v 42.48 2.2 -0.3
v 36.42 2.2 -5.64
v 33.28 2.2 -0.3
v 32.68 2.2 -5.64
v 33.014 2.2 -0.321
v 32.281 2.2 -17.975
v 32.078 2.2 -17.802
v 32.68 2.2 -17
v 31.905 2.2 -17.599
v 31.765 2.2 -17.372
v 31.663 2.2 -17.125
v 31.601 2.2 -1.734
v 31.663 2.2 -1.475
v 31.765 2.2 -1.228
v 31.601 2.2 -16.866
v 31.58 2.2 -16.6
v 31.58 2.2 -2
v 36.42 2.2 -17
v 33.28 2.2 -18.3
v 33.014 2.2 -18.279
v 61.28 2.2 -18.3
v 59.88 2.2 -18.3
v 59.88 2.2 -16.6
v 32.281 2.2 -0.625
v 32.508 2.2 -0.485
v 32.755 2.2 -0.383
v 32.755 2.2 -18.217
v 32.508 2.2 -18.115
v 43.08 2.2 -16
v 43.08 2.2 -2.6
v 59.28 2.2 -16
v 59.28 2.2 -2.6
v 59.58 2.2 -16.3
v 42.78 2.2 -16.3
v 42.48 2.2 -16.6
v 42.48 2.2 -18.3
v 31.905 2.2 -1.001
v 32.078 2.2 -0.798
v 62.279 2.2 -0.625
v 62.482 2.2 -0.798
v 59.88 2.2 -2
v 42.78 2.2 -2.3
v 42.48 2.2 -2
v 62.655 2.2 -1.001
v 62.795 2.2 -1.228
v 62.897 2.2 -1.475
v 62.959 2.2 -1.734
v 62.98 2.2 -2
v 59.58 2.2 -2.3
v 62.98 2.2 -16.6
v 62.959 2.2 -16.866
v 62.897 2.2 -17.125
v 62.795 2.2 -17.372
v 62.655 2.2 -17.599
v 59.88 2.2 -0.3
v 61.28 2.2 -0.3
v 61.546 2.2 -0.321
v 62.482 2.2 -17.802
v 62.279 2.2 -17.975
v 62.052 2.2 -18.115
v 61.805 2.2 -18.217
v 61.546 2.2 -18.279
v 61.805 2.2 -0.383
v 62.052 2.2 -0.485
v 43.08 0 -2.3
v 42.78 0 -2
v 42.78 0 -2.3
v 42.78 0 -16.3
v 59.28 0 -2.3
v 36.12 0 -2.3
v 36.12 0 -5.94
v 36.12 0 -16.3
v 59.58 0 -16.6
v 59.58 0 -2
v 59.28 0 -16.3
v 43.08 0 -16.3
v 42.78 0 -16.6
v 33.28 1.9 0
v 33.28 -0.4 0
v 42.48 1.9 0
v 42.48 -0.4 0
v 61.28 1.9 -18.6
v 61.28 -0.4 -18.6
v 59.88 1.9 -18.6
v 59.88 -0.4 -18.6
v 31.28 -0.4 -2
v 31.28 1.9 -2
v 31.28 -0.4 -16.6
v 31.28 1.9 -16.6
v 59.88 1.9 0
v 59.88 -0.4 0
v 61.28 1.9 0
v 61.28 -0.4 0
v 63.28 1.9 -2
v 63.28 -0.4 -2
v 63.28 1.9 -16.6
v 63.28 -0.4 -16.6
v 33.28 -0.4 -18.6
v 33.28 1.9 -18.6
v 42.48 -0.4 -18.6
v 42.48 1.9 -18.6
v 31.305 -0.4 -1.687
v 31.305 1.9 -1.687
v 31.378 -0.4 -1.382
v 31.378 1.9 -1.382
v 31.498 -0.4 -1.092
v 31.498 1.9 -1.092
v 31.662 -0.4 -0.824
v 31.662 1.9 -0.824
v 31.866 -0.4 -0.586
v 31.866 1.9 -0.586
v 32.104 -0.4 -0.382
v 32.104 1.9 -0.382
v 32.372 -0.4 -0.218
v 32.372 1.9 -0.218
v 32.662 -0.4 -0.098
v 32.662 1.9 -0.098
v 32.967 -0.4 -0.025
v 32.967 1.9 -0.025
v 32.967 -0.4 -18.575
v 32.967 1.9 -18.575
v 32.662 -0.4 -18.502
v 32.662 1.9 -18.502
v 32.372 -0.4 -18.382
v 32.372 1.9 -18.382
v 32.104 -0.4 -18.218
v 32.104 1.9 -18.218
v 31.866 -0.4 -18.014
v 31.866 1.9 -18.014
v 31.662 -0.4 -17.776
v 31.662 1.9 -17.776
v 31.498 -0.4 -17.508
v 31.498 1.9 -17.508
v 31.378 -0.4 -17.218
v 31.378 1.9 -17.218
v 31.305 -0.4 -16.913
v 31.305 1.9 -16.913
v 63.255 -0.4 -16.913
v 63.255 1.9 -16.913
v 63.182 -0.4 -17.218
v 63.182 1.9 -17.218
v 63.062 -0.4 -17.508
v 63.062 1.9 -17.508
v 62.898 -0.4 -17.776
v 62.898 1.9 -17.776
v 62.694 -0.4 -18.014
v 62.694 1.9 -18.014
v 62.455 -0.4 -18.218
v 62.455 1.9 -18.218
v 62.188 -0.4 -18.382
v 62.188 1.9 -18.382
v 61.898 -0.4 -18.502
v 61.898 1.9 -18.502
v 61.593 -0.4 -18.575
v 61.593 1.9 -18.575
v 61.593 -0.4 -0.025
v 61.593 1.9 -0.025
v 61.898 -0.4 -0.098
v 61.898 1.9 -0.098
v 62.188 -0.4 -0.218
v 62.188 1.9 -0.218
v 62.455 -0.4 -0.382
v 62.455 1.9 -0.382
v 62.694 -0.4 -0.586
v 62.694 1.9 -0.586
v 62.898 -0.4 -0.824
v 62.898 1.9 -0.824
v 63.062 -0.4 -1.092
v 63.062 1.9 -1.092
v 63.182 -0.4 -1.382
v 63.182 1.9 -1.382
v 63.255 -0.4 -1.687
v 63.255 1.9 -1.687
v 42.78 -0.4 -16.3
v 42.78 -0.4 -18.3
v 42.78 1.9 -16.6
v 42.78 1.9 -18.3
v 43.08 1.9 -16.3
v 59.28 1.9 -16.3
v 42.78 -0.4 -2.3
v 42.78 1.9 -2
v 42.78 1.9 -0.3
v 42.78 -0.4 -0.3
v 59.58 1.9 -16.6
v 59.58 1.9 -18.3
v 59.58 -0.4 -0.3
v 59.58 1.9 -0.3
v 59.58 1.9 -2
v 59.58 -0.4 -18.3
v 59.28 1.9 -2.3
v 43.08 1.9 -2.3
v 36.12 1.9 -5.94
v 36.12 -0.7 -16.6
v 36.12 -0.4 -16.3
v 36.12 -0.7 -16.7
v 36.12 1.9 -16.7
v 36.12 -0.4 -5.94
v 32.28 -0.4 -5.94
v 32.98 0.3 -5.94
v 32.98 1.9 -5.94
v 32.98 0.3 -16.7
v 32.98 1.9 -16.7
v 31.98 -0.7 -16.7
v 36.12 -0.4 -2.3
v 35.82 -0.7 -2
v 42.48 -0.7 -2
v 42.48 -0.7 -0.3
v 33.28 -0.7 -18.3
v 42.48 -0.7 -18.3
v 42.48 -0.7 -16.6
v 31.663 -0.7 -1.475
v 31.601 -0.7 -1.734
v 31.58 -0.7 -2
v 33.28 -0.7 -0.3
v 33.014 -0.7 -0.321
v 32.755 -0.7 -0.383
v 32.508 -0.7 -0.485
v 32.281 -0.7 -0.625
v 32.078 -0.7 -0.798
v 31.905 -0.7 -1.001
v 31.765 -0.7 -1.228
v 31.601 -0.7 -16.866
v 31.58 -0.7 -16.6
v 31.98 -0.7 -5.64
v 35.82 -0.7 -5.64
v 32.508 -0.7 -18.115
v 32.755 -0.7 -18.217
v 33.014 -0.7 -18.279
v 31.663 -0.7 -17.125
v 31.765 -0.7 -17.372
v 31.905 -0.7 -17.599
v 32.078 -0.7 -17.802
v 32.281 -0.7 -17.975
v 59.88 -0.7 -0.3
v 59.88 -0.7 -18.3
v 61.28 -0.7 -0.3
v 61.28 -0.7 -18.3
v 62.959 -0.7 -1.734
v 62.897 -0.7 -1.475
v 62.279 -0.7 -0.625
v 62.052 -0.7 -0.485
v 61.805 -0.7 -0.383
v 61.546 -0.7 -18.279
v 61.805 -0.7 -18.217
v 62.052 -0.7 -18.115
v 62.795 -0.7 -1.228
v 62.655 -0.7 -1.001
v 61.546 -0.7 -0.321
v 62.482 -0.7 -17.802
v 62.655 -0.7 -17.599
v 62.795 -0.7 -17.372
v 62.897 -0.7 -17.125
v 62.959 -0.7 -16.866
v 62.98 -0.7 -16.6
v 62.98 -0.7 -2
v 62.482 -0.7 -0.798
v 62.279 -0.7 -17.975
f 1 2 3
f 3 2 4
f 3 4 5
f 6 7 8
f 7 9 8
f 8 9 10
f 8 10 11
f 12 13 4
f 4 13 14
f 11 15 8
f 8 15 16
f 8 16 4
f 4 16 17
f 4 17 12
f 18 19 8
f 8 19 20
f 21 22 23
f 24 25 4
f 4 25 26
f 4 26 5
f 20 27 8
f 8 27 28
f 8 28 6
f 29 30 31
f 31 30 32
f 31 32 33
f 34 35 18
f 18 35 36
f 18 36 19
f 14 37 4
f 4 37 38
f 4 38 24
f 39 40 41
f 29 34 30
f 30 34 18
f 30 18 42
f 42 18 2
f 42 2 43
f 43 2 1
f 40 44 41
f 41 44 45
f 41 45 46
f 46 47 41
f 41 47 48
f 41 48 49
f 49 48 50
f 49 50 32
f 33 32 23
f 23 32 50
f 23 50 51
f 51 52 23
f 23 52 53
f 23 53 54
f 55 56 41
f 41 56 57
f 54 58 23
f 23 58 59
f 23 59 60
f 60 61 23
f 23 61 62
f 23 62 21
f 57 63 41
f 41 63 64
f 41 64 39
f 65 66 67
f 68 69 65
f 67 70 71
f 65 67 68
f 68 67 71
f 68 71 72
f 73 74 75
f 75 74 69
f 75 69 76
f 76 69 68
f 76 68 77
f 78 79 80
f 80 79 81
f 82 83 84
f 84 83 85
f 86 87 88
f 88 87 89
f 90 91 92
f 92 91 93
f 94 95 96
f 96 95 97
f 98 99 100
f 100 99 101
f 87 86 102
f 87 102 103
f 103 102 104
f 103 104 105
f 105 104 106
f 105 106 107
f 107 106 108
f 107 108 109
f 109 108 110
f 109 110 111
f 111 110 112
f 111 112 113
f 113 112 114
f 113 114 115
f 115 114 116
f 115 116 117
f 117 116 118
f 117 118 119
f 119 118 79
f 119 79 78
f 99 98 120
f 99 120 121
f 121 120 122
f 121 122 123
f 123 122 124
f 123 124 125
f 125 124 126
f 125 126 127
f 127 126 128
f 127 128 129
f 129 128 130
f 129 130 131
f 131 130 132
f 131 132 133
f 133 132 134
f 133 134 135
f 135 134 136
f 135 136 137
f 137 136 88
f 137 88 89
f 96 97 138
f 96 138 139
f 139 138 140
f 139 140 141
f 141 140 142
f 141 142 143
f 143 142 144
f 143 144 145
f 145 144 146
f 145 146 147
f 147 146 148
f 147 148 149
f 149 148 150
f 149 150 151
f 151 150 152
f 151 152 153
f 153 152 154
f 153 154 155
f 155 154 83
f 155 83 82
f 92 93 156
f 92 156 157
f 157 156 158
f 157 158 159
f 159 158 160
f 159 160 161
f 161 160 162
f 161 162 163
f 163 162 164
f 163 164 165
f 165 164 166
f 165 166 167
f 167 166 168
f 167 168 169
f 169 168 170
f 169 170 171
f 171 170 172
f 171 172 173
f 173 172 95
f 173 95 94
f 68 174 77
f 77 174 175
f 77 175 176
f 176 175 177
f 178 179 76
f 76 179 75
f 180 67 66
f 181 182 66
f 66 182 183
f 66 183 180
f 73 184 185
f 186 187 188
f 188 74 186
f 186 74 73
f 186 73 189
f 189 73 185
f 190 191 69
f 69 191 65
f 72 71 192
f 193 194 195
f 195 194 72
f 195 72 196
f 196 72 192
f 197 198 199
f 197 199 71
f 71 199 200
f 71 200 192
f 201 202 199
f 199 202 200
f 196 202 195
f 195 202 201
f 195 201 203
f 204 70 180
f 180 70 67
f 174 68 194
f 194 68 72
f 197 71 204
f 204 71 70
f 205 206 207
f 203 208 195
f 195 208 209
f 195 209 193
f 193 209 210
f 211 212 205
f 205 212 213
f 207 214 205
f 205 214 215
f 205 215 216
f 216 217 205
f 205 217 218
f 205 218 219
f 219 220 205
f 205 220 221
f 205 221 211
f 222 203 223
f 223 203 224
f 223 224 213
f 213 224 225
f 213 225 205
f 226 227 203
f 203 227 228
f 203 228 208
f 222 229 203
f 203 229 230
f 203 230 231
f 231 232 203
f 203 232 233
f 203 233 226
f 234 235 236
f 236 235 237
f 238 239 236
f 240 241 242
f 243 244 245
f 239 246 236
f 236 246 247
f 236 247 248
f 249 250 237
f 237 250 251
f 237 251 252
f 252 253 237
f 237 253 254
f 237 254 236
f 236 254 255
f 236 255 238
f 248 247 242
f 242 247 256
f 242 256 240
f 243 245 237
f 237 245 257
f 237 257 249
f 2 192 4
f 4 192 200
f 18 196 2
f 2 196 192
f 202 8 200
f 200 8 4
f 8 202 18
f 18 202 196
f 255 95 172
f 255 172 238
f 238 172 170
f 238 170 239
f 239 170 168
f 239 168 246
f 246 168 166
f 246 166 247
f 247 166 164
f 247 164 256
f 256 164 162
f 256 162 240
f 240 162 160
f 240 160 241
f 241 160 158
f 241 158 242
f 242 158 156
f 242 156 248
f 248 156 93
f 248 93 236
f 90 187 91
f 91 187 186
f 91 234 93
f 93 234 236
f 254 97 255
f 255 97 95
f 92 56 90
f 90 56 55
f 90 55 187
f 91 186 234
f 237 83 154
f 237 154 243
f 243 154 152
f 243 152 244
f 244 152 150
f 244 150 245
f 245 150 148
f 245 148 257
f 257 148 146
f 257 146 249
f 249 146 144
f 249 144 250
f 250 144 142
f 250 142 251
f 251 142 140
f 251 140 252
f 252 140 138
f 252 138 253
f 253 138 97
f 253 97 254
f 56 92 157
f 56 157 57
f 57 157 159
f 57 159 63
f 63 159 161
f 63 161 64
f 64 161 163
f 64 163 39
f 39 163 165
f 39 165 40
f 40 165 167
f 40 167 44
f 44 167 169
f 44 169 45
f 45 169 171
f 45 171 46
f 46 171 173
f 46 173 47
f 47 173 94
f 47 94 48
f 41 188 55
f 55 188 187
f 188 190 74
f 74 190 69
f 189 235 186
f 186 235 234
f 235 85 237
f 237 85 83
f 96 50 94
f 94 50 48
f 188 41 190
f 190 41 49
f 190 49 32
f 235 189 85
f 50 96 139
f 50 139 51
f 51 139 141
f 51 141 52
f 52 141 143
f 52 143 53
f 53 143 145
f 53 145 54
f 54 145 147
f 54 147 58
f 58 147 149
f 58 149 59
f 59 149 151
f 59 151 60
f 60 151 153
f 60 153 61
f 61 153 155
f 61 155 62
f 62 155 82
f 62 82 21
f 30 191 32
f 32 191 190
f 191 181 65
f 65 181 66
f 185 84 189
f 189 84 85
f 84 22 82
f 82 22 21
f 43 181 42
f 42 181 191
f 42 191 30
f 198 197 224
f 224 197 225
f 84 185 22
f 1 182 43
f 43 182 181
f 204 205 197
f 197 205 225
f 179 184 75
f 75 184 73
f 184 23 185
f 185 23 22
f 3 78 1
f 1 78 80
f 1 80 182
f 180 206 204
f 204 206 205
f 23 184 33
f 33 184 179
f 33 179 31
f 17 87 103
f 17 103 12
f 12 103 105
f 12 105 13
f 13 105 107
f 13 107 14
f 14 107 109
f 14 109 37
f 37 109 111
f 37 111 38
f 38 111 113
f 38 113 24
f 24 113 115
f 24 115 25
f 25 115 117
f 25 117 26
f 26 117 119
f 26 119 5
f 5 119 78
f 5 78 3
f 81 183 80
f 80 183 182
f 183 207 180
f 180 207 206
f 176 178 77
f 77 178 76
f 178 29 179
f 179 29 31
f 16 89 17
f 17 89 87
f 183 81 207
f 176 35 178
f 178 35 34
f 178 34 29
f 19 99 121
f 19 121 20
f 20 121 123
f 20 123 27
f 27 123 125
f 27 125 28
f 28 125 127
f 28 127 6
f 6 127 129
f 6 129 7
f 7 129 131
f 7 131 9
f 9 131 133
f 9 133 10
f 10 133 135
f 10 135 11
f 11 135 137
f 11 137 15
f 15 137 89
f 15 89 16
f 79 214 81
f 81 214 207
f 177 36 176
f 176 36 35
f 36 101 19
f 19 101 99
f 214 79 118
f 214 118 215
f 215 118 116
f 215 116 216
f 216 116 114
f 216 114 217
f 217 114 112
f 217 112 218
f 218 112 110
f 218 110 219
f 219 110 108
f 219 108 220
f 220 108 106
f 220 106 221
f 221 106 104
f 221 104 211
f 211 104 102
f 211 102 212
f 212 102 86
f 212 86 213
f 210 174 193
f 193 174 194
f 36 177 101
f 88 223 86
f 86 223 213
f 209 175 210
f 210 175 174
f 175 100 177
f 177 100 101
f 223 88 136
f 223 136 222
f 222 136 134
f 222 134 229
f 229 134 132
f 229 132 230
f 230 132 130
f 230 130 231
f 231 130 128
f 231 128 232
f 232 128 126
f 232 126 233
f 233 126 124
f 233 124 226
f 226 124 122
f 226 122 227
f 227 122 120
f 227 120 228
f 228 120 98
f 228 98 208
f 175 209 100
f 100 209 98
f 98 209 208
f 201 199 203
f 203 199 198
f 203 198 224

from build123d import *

# Parameters (mm, degrees)
SKETCH_1_W          = 32
SKETCH_1_H          = 18.6
EXTRUDE_1_DEPTH     = 2.2
FILLET_1_R          = 2
SKETCH_2_W          = 3.14
SKETCH_2_H          = 10.76
SKETCH_2_W_2        = 16.8
SKETCH_2_H_2        = 2.6
CUT_EXTRUDE_1_DEPTH = 3.2
EXTRUDE_2_DEPTH     = 0.7
CHAMFER_1_SIZE      = 0.3
CHAMFER_2_SIZE      = 1


with BuildPart() as part:
    # 草图1 → 凸台-拉伸1 (new body)
    with BuildSketch(Plane(origin=(0, 0, 0), x_dir=(1, 0, 0), z_dir=(0, 1, 0))):
        with Locations((47.27991, 9.3)):
            Rectangle(SKETCH_1_W, SKETCH_1_H)
    extrude(amount=EXTRUDE_1_DEPTH)

    # 圆角1
    fillet_1_edges = [part.edges().sort_by_distance(p)[0] for p in [
        (31.27991, 1.1, -18.6),
        (63.27991, 1.1, -18.6),
        (63.27991, 1.1, 0),
        (31.27991, 1.1, 0),
    ]]
    fillet(fillet_1_edges, radius=FILLET_1_R)

    # 草图2 → 切除-拉伸1 (cut, through all)
    with BuildSketch(Plane(origin=(0, 2.2, 0), x_dir=(1, 0, 0), z_dir=(0, 1, 0))):
        with Locations((34.54991, 11.32)):
            Rectangle(SKETCH_2_W, SKETCH_2_H)
        with Locations((51.17991, 1)):
            Rectangle(SKETCH_2_W_2, SKETCH_2_H_2)
        with Locations((51.17991, 17.6)):
            Rectangle(SKETCH_2_W_2, SKETCH_2_H_2)
    extrude(amount=-CUT_EXTRUDE_1_DEPTH, mode=Mode.SUBTRACT)

    # 草图3 → 凸台-拉伸2 (add)
    with BuildSketch(Plane.XZ):
        with BuildLine():
            Line((36.11991, -5.94), (36.11991, -2.3))
            Line((36.11991, -2.3), (42.77991, -2.3))
            Line((42.77991, -2.3), (42.77991, 0))
            Line((42.77991, 0), (33.27991, 0))
            ThreePointArc((33.27991, 0), (31.865696, -0.585786), (31.27991, -2))
            Line((31.27991, -2), (31.27991, -16.6))
            ThreePointArc((31.27991, -16.6), (31.865696, -18.014214), (33.27991, -18.6))
            Line((33.27991, -18.6), (42.77991, -18.6))
            Line((42.77991, -18.6), (42.77991, -16.3))
            Line((42.77991, -16.3), (36.11991, -16.3))
            Line((36.11991, -16.3), (36.11991, -16.7))
            Line((36.11991, -16.7), (32.97991, -16.7))
            Line((32.97991, -16.7), (32.97991, -5.94))
            Line((32.97991, -5.94), (36.11991, -5.94))
        make_face()
        with BuildLine():
            Line((59.57991, -16.3), (59.57991, -18.6))
            Line((59.57991, -18.6), (61.27991, -18.6))
            ThreePointArc((61.27991, -18.6), (62.694123, -18.014214), (63.27991, -16.6))
            Line((63.27991, -16.6), (63.27991, -2))
            ThreePointArc((63.27991, -2), (62.694123, -0.585786), (61.27991, 0))
            Line((61.27991, 0), (59.57991, 0))
            Line((59.57991, 0), (59.57991, -2.3))
            Line((59.57991, -2.3), (59.57991, -16.3))
        make_face()
    extrude(amount=EXTRUDE_2_DEPTH)

    # 倒角1
    chamfer_1_edges = [part.edges().sort_by_distance(p)[0] for p in [
        (36.11991, -0.7, -4.12),
        (34.54991, -0.7, -5.94),
        (39.44991, -0.7, -16.3),
        (42.77991, -0.7, -17.45),
        (38.02991, -0.7, -18.6),
        (31.865696, -0.7, -18.014214),
        (31.27991, -0.7, -9.3),
        (31.865696, -0.7, -0.585786),
        (38.02991, -0.7, 0),
        (42.77991, -0.7, -1.15),
        (39.44991, -0.7, -2.3),
        (60.42991, -0.7, 0),
        (62.694123, -0.7, -0.585786),
        (63.27991, -0.7, -9.3),
        (62.694123, -0.7, -18.014214),
        (60.42991, -0.7, -18.6),
        (59.57991, -0.7, -9.3),
        (38.02991, 2.2, 0),
        (31.865696, 2.2, -0.585786),
        (31.27991, 2.2, -9.3),
        (31.865696, 2.2, -18.014214),
        (38.02991, 2.2, -18.6),
        (42.77991, 2.2, -17.45),
        (51.17991, 2.2, -16.3),
        (59.57991, 2.2, -17.45),
        (60.42991, 2.2, -18.6),
        (62.694123, 2.2, -18.014214),
        (63.27991, 2.2, -9.3),
        (62.694123, 2.2, -0.585786),
        (60.42991, 2.2, 0),
        (59.57991, 2.2, -1.15),
        (51.17991, 2.2, -2.3),
        (42.77991, 2.2, -1.15),
        (34.54991, 2.2, -16.7),
        (32.97991, 2.2, -11.32),
        (34.54991, 2.2, -5.94),
        (36.11991, 2.2, -11.32),
        (42.77991, 0.75, -18.6),
        (42.77991, 1.1, -16.3),
        (59.57991, 1.1, -16.3),
        (59.57991, 0.75, -18.6),
        (59.57991, 0.75, 0),
        (59.57991, 1.1, -2.3),
        (42.77991, 1.1, -2.3),
        (42.77991, 0.75, 0),
    ]]
    chamfer(chamfer_1_edges, length=CHAMFER_1_SIZE)

    # 倒角2
    chamfer_2_edges = [part.edges().sort_by_distance(p)[0] for p in [
        (32.97991, -0.7, -11.32),
    ]]
    chamfer(chamfer_2_edges, length=CHAMFER_2_SIZE)


solid = part.part
